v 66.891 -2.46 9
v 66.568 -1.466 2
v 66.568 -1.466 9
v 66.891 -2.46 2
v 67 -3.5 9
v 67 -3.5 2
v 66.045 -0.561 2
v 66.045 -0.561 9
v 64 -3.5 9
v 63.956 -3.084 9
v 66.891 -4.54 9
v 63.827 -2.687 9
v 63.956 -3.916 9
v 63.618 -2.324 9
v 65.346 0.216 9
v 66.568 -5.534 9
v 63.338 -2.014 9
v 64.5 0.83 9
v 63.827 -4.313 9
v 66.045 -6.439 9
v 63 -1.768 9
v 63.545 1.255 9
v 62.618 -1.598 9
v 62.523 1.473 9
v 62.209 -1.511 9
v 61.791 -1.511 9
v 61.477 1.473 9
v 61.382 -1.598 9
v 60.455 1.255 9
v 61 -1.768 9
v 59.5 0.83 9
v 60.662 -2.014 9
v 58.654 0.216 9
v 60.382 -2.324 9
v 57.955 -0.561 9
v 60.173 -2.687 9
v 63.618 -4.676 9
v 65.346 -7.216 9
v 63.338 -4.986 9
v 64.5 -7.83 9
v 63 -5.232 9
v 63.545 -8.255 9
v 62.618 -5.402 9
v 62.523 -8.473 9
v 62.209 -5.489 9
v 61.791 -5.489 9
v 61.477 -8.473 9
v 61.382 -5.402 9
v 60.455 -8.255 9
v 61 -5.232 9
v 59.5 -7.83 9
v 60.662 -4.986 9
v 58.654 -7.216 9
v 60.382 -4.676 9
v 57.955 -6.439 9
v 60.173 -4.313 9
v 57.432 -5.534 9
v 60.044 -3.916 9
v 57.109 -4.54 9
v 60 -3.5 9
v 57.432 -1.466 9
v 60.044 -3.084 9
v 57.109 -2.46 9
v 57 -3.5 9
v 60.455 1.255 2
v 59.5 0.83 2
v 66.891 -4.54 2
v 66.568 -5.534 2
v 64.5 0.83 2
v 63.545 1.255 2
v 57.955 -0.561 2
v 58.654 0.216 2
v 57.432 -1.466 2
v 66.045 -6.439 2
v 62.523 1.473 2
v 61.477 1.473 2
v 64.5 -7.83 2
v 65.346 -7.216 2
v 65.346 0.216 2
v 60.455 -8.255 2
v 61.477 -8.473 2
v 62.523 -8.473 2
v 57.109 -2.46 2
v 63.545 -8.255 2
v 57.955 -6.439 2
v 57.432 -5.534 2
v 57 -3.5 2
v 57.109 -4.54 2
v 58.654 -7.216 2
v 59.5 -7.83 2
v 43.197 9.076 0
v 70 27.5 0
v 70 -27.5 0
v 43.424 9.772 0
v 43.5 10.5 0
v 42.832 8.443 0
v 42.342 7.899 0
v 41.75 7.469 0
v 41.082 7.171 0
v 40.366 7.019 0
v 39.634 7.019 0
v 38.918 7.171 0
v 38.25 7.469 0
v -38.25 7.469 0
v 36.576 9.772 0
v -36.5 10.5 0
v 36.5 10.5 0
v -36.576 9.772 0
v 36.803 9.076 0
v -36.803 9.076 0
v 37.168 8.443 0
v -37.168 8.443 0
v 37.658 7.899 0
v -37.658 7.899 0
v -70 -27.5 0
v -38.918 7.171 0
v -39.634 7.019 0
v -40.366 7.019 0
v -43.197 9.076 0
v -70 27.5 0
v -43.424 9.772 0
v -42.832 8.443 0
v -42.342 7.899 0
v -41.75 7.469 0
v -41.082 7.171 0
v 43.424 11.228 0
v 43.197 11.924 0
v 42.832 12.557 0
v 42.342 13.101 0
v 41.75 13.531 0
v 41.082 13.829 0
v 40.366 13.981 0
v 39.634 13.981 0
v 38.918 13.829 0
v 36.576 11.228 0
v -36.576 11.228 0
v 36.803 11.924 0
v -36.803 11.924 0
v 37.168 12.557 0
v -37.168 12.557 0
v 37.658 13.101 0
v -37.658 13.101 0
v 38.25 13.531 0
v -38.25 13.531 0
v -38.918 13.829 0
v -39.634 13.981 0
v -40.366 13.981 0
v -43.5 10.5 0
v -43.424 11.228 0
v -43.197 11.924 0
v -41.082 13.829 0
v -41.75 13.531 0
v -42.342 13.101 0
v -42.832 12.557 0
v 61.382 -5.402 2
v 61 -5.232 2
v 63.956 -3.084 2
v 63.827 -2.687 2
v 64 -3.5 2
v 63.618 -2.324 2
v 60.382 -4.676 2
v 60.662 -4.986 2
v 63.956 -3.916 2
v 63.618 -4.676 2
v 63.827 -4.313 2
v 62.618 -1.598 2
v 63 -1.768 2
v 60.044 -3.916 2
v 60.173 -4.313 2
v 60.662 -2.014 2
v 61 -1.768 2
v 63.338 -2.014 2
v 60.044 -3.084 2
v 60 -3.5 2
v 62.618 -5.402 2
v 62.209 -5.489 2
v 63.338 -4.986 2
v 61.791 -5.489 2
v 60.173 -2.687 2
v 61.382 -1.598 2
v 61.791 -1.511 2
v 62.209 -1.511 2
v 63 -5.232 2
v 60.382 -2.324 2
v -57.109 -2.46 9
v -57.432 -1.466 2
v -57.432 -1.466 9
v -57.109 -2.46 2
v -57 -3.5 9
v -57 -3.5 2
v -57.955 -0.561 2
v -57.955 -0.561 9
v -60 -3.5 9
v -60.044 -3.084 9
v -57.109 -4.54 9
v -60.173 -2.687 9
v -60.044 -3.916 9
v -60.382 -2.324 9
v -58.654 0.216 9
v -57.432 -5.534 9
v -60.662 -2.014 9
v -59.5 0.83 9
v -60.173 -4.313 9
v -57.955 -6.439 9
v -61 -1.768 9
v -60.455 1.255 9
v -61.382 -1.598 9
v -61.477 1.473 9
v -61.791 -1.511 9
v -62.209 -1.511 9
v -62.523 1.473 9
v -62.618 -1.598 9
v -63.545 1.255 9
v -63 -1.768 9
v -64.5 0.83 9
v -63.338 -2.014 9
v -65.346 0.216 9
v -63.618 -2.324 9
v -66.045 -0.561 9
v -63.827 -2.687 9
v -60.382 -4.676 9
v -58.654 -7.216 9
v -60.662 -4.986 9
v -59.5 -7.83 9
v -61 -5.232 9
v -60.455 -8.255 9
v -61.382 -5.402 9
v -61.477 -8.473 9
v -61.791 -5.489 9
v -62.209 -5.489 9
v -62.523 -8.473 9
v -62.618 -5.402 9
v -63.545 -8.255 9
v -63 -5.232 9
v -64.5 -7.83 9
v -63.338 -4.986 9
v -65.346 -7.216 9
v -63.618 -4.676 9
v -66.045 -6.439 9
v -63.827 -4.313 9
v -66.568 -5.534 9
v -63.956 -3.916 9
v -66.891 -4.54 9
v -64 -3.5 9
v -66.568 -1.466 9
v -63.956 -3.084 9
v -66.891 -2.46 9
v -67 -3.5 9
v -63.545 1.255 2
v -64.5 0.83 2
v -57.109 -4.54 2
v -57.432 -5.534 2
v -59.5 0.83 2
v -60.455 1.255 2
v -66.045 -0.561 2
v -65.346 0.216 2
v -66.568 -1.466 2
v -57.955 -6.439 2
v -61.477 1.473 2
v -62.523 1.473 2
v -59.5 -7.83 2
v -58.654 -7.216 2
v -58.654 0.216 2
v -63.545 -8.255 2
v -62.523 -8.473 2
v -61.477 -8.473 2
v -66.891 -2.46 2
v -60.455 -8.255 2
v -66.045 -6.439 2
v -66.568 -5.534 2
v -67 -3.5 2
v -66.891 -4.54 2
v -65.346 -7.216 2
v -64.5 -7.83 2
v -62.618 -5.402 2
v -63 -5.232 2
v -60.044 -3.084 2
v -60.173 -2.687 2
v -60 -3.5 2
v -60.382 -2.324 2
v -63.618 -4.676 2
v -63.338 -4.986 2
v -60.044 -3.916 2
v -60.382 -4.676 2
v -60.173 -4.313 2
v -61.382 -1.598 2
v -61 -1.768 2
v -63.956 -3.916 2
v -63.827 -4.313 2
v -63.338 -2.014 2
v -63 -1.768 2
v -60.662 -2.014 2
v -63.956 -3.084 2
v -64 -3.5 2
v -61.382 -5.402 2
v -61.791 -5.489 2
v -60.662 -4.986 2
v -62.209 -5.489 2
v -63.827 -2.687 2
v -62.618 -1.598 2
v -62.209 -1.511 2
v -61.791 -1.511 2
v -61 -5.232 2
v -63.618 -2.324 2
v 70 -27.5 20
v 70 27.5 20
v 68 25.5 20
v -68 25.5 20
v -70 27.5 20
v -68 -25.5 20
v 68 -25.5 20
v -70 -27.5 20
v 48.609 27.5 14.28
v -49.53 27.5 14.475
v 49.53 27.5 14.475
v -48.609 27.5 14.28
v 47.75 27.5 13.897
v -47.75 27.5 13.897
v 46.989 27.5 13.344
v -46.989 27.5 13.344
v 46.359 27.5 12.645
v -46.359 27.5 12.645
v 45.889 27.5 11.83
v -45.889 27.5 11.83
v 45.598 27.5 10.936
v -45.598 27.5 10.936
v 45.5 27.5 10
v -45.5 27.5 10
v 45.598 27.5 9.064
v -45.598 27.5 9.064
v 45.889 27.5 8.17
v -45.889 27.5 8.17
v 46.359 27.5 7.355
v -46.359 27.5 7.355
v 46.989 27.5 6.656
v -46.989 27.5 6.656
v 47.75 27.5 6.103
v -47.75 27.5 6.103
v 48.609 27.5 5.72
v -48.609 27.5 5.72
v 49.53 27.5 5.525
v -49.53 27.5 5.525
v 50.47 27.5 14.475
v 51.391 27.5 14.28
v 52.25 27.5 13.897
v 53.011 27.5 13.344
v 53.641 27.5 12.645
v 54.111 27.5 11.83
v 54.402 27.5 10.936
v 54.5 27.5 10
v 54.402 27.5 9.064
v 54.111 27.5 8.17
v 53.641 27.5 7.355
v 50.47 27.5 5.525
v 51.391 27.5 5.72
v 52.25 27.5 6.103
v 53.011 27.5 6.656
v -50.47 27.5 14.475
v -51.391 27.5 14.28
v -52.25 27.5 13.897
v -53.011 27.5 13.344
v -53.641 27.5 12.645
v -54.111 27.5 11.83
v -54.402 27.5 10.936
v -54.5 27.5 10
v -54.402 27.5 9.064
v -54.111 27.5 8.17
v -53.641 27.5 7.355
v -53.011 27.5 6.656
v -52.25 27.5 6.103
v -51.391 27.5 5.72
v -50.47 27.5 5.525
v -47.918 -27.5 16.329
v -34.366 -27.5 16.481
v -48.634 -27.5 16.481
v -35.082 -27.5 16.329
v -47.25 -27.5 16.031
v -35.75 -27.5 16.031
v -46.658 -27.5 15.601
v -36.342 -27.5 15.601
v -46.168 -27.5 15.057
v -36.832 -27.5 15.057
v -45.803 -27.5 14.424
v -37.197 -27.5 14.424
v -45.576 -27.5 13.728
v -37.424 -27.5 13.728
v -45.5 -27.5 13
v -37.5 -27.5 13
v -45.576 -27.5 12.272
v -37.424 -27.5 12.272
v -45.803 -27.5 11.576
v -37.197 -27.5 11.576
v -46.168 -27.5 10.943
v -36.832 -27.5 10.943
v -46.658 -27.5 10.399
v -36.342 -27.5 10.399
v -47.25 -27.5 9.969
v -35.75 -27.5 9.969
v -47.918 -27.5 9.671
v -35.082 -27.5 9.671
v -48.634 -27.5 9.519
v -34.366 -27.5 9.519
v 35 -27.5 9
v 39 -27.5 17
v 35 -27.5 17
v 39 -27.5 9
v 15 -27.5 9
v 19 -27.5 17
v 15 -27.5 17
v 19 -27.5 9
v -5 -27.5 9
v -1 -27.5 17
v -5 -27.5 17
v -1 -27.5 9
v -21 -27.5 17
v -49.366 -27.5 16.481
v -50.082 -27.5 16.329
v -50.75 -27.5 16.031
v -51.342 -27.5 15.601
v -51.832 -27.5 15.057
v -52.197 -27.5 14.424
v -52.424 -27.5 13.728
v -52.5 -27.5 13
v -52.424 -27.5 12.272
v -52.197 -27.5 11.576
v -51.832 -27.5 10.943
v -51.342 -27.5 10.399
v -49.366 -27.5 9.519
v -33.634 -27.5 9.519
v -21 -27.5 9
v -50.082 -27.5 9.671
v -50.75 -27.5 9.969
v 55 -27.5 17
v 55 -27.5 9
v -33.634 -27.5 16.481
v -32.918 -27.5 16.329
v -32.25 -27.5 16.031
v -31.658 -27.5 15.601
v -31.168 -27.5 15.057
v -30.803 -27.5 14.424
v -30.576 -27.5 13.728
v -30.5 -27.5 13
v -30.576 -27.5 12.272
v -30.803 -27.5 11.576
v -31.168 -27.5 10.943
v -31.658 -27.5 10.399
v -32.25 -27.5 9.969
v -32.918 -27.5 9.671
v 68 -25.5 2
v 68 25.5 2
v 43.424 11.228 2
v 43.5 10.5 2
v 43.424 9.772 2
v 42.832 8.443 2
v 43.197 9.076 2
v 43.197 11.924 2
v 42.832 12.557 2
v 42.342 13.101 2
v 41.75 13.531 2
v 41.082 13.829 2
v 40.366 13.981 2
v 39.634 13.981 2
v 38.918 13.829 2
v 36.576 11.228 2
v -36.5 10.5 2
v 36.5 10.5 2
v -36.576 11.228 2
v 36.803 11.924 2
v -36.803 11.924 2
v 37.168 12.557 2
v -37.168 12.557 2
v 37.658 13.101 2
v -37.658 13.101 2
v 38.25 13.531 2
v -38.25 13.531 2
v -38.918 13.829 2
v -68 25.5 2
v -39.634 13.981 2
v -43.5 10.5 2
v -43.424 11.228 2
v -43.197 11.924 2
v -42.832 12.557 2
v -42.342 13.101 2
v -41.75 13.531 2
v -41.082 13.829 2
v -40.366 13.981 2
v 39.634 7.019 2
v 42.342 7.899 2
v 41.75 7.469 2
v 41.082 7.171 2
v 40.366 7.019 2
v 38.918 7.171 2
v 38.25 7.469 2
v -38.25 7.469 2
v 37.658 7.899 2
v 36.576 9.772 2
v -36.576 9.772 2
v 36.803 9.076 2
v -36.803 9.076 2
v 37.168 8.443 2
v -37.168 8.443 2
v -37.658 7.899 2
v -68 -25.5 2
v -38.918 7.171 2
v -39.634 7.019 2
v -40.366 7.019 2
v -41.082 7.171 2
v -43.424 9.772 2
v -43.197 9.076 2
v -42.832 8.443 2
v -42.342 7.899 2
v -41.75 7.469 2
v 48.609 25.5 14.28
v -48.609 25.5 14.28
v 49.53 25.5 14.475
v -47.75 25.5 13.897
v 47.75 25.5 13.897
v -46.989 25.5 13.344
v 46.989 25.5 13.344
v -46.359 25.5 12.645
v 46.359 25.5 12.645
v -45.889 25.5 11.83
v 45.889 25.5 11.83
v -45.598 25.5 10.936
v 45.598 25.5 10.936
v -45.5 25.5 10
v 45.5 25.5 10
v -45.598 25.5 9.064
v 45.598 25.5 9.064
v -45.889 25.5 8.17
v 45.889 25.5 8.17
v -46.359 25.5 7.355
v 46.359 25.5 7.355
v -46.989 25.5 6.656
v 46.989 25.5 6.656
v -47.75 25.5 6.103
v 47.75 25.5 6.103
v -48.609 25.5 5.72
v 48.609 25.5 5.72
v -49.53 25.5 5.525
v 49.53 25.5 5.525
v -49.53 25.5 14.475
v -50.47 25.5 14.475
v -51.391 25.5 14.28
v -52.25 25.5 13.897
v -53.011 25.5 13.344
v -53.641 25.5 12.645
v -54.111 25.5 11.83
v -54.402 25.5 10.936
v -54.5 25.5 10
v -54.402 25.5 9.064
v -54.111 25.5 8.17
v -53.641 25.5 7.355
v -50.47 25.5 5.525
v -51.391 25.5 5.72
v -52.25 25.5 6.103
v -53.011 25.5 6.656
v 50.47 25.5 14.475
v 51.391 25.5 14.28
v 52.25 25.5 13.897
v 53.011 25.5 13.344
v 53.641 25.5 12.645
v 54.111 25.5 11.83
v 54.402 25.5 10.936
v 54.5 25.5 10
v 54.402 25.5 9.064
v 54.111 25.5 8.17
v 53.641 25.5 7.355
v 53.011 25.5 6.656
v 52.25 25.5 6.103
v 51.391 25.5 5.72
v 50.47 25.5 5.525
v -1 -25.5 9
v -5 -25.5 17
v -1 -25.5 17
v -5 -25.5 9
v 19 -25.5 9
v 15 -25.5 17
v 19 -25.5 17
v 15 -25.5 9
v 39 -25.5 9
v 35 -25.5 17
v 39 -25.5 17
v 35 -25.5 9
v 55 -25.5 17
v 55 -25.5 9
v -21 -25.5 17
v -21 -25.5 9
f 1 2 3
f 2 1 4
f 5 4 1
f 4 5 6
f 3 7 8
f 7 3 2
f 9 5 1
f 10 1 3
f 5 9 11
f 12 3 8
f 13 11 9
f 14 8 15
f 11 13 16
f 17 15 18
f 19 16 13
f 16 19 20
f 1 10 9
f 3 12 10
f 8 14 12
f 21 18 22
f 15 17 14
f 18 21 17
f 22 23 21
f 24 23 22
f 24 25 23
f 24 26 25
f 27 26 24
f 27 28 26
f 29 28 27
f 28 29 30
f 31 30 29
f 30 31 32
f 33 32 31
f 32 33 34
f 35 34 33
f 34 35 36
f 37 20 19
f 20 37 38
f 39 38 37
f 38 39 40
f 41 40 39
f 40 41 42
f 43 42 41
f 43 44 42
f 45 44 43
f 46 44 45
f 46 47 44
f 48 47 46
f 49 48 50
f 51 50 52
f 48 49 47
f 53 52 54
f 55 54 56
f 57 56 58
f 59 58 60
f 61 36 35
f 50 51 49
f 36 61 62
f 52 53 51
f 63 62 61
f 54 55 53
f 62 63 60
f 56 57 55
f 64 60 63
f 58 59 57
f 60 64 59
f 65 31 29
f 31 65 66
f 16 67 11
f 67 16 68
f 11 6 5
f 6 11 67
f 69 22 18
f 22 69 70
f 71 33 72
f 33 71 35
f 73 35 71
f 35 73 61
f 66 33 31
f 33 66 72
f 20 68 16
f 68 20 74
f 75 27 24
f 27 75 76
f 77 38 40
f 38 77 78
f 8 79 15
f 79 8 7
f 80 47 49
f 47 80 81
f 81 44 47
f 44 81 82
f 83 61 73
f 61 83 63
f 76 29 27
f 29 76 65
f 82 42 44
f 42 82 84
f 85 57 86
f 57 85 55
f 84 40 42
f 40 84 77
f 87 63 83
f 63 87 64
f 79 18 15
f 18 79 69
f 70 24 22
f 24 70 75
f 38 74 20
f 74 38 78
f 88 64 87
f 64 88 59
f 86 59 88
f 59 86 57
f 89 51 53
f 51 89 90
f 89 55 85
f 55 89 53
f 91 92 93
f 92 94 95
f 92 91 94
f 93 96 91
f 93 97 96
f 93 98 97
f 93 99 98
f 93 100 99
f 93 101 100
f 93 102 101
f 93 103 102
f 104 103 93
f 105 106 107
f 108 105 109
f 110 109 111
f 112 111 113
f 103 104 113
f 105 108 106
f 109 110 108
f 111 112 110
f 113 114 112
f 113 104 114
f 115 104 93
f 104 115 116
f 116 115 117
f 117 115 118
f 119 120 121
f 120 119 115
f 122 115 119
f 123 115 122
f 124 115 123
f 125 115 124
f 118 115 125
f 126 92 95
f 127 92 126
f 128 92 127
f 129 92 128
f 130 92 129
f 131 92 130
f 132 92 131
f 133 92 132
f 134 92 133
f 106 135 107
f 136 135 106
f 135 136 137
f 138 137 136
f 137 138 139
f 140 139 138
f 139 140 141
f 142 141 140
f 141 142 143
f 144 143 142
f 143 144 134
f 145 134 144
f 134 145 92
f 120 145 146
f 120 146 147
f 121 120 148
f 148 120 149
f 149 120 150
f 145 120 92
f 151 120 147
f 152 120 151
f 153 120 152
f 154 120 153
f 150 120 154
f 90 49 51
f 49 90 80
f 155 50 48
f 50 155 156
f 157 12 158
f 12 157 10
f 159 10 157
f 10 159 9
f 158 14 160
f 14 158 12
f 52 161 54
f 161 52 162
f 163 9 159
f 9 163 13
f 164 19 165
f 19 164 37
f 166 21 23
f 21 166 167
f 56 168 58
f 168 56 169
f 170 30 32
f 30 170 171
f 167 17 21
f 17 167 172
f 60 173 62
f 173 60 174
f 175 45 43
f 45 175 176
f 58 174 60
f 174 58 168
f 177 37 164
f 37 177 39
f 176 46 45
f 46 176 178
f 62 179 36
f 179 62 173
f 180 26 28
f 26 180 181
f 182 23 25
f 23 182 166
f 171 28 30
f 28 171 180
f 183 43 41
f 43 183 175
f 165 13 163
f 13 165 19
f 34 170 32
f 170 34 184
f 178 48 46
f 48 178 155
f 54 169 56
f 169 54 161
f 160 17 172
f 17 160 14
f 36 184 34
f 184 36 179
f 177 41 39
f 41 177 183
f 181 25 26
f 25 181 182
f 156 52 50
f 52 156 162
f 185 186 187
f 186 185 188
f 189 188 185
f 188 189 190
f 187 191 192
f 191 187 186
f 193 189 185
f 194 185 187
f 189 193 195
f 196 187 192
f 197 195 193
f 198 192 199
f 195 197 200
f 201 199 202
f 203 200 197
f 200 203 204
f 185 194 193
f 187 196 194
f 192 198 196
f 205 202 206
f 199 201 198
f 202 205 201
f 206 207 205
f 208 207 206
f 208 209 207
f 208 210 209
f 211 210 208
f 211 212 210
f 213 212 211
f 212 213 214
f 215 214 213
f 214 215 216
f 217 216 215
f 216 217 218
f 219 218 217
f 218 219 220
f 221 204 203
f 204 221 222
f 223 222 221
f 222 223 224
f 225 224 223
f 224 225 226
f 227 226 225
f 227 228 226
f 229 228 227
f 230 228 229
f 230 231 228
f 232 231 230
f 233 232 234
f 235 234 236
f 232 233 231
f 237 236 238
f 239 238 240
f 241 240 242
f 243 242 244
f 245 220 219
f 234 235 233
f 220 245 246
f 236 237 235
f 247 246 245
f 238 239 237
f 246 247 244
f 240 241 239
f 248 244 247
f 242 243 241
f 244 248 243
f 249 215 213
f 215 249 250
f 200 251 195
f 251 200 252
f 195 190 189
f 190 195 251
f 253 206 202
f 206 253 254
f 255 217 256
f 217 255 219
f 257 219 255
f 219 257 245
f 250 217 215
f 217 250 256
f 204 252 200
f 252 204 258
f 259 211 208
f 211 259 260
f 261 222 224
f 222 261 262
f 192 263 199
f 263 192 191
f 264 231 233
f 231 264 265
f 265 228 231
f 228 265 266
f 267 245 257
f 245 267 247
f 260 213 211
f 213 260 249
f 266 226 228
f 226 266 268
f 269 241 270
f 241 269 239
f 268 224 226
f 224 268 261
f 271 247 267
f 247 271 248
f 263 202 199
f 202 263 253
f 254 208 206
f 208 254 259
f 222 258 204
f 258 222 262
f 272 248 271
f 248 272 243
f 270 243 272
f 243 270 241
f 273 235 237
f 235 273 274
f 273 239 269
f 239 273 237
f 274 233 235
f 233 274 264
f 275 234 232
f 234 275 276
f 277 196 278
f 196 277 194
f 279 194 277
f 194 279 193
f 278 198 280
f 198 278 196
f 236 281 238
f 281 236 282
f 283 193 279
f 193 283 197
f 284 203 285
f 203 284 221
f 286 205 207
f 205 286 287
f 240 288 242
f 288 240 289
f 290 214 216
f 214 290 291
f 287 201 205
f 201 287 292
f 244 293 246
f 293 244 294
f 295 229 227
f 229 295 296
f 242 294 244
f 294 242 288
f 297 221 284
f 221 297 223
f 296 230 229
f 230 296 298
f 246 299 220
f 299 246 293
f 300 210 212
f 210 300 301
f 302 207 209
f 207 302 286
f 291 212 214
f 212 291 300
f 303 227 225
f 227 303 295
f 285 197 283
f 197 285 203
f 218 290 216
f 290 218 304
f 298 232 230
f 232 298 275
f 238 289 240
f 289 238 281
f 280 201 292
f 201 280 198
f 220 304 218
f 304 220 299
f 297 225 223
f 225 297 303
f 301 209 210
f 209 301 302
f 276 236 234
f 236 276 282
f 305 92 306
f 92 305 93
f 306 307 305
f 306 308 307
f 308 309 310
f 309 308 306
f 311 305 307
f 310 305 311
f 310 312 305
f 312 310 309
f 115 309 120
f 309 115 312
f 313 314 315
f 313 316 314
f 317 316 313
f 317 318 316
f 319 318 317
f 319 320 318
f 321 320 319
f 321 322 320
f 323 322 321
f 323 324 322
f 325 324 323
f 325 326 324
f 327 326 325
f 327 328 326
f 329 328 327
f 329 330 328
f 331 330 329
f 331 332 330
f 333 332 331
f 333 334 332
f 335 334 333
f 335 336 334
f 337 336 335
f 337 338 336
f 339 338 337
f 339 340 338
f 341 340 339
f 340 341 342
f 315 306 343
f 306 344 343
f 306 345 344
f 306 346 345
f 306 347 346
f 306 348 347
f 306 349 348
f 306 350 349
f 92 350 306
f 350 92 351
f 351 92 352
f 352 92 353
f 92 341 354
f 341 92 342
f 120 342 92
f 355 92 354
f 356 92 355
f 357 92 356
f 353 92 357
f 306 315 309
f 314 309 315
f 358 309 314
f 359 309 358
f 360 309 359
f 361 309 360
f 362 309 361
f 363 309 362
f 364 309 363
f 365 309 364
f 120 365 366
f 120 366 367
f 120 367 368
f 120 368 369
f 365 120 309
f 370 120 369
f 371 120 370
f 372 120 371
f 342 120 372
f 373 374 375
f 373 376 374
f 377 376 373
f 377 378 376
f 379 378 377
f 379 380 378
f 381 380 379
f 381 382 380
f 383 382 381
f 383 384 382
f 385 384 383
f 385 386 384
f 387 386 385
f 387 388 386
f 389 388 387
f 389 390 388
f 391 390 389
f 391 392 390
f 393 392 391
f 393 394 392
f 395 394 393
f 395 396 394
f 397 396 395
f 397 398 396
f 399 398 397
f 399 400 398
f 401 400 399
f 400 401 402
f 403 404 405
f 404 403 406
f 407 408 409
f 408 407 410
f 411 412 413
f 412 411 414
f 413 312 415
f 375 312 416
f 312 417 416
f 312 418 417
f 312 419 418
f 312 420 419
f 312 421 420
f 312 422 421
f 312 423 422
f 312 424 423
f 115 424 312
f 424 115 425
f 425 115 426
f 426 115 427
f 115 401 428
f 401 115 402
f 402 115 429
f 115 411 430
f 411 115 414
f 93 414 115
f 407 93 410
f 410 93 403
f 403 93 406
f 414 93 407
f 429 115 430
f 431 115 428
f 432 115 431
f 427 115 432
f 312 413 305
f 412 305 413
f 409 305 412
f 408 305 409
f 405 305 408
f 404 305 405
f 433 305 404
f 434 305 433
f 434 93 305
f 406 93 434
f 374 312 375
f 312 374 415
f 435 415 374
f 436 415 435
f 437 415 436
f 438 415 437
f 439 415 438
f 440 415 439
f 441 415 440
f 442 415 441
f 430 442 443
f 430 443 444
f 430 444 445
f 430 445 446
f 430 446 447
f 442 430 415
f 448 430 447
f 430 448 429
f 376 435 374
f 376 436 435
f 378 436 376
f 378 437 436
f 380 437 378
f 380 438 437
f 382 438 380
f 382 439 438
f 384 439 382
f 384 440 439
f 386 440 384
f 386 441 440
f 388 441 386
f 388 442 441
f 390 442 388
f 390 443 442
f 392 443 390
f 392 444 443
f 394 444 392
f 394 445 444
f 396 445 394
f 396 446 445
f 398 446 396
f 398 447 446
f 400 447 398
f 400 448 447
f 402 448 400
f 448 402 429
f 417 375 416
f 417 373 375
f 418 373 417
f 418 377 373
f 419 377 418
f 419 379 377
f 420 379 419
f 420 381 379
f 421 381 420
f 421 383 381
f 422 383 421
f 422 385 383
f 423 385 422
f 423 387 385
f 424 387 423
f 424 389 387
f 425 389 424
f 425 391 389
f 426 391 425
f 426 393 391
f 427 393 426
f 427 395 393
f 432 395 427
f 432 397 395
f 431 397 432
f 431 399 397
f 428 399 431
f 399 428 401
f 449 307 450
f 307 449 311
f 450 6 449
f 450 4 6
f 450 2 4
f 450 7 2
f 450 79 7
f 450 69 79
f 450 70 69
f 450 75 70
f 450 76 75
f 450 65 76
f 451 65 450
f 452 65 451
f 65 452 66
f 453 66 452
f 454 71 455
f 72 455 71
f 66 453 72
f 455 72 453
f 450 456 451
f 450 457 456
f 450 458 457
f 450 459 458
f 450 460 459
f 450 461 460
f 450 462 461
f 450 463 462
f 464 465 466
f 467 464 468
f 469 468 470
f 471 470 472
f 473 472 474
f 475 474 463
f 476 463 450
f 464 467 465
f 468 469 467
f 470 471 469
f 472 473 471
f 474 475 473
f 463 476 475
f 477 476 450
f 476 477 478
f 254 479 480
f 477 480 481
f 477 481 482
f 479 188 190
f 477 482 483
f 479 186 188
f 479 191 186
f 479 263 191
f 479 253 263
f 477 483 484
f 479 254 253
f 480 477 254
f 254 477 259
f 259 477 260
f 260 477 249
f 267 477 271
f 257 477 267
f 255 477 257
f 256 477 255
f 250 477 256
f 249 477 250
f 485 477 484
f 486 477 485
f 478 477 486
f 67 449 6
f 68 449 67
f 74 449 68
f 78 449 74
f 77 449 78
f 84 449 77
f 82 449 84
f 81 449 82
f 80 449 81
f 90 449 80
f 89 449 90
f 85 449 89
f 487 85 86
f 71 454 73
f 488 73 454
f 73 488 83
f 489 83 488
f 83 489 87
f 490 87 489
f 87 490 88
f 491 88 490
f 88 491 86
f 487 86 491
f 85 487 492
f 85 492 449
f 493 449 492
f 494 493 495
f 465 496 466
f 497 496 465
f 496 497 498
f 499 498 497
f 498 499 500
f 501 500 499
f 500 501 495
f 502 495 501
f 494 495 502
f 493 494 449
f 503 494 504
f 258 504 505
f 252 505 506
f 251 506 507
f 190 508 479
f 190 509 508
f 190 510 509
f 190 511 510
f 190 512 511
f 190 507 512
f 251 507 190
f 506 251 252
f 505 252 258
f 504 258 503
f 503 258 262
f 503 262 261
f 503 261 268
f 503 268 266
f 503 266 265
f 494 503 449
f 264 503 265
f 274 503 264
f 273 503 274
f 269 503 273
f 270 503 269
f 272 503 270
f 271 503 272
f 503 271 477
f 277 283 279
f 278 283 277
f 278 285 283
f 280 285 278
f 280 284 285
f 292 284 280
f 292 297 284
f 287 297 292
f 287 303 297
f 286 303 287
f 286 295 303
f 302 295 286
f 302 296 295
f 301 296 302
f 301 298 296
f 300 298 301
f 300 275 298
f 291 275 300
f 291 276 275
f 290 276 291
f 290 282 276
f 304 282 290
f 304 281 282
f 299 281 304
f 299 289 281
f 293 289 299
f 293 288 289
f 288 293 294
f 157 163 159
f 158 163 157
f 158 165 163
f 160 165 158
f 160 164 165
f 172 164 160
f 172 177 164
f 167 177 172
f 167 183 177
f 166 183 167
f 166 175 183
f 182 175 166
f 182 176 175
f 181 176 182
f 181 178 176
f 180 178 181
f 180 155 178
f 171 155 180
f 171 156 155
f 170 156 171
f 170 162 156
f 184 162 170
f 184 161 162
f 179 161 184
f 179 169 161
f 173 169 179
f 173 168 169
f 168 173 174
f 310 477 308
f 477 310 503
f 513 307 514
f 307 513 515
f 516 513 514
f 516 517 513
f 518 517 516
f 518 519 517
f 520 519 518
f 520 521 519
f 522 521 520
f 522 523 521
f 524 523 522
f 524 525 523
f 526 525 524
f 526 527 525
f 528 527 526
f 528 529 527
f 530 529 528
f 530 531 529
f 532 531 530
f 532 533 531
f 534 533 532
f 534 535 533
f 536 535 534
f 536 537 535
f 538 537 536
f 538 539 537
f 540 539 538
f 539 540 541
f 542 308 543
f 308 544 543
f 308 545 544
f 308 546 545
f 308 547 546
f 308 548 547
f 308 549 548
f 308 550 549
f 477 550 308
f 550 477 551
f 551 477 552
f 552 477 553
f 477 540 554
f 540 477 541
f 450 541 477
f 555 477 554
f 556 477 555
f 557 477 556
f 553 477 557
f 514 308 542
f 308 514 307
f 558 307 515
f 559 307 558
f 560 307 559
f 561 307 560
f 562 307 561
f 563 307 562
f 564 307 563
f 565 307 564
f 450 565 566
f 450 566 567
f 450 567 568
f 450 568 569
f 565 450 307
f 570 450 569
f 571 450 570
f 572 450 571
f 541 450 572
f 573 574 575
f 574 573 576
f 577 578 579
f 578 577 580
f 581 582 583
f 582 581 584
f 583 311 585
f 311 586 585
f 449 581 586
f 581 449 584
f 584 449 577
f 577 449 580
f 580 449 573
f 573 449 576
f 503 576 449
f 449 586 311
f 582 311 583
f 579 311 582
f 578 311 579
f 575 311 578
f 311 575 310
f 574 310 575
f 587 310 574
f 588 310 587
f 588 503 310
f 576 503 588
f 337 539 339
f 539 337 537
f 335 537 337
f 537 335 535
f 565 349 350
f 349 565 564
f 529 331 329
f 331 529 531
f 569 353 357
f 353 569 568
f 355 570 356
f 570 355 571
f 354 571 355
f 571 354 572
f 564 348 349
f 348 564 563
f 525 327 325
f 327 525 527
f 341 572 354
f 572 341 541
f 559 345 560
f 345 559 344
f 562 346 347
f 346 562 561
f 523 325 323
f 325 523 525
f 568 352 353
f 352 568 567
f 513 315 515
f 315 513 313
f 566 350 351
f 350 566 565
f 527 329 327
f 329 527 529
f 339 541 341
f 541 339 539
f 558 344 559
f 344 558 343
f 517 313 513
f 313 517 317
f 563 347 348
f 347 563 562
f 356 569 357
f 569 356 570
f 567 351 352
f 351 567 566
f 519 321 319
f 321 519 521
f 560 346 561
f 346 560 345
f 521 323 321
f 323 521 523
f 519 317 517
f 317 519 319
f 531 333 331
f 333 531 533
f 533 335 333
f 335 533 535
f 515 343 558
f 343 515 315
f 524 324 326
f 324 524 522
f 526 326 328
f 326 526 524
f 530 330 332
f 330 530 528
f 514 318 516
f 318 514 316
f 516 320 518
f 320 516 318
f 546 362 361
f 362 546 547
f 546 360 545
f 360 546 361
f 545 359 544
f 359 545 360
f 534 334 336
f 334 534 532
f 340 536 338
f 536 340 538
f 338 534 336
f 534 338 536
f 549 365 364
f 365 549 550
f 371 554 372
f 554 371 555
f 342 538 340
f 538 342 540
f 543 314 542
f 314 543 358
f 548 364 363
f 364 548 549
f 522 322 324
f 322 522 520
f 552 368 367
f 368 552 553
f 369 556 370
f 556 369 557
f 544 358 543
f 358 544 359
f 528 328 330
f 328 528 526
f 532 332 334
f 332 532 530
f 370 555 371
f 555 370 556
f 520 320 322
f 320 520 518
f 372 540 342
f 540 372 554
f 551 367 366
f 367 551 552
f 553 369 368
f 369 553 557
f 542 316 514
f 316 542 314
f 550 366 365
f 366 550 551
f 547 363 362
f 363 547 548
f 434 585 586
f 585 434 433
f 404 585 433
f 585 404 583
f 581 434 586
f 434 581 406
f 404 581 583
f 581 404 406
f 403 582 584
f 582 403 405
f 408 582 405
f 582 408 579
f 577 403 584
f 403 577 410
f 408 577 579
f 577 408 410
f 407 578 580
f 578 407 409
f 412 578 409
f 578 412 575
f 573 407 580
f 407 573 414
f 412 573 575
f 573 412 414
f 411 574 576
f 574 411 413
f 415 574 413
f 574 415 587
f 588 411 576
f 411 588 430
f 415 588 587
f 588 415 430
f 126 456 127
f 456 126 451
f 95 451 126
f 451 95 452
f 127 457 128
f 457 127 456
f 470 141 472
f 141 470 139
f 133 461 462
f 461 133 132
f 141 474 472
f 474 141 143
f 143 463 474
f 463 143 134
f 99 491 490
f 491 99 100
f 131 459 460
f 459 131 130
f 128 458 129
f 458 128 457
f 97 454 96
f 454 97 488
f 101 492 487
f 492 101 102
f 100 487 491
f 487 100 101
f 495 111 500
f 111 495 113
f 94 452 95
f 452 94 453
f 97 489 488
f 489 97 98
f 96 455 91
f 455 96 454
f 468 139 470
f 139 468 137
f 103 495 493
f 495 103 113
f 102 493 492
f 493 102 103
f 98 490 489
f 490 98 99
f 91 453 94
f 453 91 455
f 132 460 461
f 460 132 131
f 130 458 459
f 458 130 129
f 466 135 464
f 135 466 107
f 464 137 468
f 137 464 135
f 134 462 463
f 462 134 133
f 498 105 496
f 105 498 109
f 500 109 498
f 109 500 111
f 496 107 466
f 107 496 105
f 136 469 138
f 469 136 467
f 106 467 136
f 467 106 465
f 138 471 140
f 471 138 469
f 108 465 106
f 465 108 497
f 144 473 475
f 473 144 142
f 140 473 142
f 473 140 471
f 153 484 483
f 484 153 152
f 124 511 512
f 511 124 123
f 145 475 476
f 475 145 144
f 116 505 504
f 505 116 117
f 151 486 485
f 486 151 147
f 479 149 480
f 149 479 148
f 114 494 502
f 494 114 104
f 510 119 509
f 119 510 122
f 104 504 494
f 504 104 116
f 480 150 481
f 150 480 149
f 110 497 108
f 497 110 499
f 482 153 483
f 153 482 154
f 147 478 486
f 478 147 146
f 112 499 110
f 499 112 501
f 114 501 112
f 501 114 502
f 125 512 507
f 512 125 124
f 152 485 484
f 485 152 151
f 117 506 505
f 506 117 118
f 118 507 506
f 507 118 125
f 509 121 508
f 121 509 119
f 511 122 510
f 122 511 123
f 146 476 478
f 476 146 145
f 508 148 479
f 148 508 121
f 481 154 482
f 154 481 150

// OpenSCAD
// Define variables for the dimensions and hole positions in millimeters
box_length = 140;
box_width = 55;
box_height = 20;

inside_box_length = box_length - 4;
inside_box_width = box_width - 4;
inside_box_height = box_height - 2;

usb_port_length = 16;
usb_port_width = 2;
usb_port_height = 8;

rca_hole_diameter = 9;
jack_hole_diameter = 7;


module custom_cylinder(translated_position_X, translated_position_Y,translated_position_Z,input_diameter) {
    translate([translated_position_X, translated_position_Y, translated_position_Z]){ 
        rotate([90,0,0]){
            cylinder(d=input_diameter, h=2, $fn=30);
        }
    }
}
module custom_cylinder_switch(translated_position_X, translated_position_Y,translated_position_Z) {
    translate([translated_position_X, translated_position_Y, translated_position_Z]){ 
        rotate([0,0,0]){
            cylinder(d=7, h=2, $fn=30);
        }
    }
}
module support_board(translated_position_X, translated_position_Y,translated_position_Z) {
    translate([translated_position_X, translated_position_Y, translated_position_Z]){ 
        difference(){
            cylinder(d=10, h=9, $fn=30);
            cylinder(d=4, h=9, $fn=30);

        }
    }
}

module usb_port(translated_position_X, translated_position_Y,translated_position_Z) {
    translate([translated_position_X, translated_position_Y, translated_position_Z]){ 
            cube([usb_port_length, usb_port_width, usb_port_height]);}        
}

module main(){
    difference(){
        
    translate([-box_length/2,-box_width/2,0]){
            cube([box_length, box_width, box_height]);}
    translate([-inside_box_length/2,-inside_box_width/2,box_height-inside_box_height]){
        cube([inside_box_length, inside_box_width, inside_box_height]);}
        custom_cylinder(box_length/2-20,box_width/2,box_height/2,rca_hole_diameter);
        custom_cylinder(-box_length/2+20,box_width/2,box_height/2,rca_hole_diameter);
        usb_port(box_length/2-(usb_port_length+15),-box_width/2,rca_hole_diameter);
        usb_port(box_length/2-(usb_port_length+15)-20,-box_width/2,9);
        usb_port(box_length/2-(usb_port_length+15)-40,-box_width/2,9);
        usb_port(box_length/2-(usb_port_length+15)-60,-box_width/2,9);
        custom_cylinder(box_length/2-(usb_port_length+15)-73,-box_width/2,9+(usb_port_height/2),jack_hole_diameter);
        custom_cylinder(box_length/2-(usb_port_length+15)-88,-box_width/2,9+(usb_port_height/2),jack_hole_diameter); 
        custom_cylinder_switch(box_length/2-30,box_width/2-17,0);
        custom_cylinder_switch(-(box_length/2-30),box_width/2-17,0);
    
        }
 
}
    

main();
support_board(box_length/2-8,(-box_width/2)+24,0);
support_board(-(box_length/2-8),(-box_width/2)+24,0);
